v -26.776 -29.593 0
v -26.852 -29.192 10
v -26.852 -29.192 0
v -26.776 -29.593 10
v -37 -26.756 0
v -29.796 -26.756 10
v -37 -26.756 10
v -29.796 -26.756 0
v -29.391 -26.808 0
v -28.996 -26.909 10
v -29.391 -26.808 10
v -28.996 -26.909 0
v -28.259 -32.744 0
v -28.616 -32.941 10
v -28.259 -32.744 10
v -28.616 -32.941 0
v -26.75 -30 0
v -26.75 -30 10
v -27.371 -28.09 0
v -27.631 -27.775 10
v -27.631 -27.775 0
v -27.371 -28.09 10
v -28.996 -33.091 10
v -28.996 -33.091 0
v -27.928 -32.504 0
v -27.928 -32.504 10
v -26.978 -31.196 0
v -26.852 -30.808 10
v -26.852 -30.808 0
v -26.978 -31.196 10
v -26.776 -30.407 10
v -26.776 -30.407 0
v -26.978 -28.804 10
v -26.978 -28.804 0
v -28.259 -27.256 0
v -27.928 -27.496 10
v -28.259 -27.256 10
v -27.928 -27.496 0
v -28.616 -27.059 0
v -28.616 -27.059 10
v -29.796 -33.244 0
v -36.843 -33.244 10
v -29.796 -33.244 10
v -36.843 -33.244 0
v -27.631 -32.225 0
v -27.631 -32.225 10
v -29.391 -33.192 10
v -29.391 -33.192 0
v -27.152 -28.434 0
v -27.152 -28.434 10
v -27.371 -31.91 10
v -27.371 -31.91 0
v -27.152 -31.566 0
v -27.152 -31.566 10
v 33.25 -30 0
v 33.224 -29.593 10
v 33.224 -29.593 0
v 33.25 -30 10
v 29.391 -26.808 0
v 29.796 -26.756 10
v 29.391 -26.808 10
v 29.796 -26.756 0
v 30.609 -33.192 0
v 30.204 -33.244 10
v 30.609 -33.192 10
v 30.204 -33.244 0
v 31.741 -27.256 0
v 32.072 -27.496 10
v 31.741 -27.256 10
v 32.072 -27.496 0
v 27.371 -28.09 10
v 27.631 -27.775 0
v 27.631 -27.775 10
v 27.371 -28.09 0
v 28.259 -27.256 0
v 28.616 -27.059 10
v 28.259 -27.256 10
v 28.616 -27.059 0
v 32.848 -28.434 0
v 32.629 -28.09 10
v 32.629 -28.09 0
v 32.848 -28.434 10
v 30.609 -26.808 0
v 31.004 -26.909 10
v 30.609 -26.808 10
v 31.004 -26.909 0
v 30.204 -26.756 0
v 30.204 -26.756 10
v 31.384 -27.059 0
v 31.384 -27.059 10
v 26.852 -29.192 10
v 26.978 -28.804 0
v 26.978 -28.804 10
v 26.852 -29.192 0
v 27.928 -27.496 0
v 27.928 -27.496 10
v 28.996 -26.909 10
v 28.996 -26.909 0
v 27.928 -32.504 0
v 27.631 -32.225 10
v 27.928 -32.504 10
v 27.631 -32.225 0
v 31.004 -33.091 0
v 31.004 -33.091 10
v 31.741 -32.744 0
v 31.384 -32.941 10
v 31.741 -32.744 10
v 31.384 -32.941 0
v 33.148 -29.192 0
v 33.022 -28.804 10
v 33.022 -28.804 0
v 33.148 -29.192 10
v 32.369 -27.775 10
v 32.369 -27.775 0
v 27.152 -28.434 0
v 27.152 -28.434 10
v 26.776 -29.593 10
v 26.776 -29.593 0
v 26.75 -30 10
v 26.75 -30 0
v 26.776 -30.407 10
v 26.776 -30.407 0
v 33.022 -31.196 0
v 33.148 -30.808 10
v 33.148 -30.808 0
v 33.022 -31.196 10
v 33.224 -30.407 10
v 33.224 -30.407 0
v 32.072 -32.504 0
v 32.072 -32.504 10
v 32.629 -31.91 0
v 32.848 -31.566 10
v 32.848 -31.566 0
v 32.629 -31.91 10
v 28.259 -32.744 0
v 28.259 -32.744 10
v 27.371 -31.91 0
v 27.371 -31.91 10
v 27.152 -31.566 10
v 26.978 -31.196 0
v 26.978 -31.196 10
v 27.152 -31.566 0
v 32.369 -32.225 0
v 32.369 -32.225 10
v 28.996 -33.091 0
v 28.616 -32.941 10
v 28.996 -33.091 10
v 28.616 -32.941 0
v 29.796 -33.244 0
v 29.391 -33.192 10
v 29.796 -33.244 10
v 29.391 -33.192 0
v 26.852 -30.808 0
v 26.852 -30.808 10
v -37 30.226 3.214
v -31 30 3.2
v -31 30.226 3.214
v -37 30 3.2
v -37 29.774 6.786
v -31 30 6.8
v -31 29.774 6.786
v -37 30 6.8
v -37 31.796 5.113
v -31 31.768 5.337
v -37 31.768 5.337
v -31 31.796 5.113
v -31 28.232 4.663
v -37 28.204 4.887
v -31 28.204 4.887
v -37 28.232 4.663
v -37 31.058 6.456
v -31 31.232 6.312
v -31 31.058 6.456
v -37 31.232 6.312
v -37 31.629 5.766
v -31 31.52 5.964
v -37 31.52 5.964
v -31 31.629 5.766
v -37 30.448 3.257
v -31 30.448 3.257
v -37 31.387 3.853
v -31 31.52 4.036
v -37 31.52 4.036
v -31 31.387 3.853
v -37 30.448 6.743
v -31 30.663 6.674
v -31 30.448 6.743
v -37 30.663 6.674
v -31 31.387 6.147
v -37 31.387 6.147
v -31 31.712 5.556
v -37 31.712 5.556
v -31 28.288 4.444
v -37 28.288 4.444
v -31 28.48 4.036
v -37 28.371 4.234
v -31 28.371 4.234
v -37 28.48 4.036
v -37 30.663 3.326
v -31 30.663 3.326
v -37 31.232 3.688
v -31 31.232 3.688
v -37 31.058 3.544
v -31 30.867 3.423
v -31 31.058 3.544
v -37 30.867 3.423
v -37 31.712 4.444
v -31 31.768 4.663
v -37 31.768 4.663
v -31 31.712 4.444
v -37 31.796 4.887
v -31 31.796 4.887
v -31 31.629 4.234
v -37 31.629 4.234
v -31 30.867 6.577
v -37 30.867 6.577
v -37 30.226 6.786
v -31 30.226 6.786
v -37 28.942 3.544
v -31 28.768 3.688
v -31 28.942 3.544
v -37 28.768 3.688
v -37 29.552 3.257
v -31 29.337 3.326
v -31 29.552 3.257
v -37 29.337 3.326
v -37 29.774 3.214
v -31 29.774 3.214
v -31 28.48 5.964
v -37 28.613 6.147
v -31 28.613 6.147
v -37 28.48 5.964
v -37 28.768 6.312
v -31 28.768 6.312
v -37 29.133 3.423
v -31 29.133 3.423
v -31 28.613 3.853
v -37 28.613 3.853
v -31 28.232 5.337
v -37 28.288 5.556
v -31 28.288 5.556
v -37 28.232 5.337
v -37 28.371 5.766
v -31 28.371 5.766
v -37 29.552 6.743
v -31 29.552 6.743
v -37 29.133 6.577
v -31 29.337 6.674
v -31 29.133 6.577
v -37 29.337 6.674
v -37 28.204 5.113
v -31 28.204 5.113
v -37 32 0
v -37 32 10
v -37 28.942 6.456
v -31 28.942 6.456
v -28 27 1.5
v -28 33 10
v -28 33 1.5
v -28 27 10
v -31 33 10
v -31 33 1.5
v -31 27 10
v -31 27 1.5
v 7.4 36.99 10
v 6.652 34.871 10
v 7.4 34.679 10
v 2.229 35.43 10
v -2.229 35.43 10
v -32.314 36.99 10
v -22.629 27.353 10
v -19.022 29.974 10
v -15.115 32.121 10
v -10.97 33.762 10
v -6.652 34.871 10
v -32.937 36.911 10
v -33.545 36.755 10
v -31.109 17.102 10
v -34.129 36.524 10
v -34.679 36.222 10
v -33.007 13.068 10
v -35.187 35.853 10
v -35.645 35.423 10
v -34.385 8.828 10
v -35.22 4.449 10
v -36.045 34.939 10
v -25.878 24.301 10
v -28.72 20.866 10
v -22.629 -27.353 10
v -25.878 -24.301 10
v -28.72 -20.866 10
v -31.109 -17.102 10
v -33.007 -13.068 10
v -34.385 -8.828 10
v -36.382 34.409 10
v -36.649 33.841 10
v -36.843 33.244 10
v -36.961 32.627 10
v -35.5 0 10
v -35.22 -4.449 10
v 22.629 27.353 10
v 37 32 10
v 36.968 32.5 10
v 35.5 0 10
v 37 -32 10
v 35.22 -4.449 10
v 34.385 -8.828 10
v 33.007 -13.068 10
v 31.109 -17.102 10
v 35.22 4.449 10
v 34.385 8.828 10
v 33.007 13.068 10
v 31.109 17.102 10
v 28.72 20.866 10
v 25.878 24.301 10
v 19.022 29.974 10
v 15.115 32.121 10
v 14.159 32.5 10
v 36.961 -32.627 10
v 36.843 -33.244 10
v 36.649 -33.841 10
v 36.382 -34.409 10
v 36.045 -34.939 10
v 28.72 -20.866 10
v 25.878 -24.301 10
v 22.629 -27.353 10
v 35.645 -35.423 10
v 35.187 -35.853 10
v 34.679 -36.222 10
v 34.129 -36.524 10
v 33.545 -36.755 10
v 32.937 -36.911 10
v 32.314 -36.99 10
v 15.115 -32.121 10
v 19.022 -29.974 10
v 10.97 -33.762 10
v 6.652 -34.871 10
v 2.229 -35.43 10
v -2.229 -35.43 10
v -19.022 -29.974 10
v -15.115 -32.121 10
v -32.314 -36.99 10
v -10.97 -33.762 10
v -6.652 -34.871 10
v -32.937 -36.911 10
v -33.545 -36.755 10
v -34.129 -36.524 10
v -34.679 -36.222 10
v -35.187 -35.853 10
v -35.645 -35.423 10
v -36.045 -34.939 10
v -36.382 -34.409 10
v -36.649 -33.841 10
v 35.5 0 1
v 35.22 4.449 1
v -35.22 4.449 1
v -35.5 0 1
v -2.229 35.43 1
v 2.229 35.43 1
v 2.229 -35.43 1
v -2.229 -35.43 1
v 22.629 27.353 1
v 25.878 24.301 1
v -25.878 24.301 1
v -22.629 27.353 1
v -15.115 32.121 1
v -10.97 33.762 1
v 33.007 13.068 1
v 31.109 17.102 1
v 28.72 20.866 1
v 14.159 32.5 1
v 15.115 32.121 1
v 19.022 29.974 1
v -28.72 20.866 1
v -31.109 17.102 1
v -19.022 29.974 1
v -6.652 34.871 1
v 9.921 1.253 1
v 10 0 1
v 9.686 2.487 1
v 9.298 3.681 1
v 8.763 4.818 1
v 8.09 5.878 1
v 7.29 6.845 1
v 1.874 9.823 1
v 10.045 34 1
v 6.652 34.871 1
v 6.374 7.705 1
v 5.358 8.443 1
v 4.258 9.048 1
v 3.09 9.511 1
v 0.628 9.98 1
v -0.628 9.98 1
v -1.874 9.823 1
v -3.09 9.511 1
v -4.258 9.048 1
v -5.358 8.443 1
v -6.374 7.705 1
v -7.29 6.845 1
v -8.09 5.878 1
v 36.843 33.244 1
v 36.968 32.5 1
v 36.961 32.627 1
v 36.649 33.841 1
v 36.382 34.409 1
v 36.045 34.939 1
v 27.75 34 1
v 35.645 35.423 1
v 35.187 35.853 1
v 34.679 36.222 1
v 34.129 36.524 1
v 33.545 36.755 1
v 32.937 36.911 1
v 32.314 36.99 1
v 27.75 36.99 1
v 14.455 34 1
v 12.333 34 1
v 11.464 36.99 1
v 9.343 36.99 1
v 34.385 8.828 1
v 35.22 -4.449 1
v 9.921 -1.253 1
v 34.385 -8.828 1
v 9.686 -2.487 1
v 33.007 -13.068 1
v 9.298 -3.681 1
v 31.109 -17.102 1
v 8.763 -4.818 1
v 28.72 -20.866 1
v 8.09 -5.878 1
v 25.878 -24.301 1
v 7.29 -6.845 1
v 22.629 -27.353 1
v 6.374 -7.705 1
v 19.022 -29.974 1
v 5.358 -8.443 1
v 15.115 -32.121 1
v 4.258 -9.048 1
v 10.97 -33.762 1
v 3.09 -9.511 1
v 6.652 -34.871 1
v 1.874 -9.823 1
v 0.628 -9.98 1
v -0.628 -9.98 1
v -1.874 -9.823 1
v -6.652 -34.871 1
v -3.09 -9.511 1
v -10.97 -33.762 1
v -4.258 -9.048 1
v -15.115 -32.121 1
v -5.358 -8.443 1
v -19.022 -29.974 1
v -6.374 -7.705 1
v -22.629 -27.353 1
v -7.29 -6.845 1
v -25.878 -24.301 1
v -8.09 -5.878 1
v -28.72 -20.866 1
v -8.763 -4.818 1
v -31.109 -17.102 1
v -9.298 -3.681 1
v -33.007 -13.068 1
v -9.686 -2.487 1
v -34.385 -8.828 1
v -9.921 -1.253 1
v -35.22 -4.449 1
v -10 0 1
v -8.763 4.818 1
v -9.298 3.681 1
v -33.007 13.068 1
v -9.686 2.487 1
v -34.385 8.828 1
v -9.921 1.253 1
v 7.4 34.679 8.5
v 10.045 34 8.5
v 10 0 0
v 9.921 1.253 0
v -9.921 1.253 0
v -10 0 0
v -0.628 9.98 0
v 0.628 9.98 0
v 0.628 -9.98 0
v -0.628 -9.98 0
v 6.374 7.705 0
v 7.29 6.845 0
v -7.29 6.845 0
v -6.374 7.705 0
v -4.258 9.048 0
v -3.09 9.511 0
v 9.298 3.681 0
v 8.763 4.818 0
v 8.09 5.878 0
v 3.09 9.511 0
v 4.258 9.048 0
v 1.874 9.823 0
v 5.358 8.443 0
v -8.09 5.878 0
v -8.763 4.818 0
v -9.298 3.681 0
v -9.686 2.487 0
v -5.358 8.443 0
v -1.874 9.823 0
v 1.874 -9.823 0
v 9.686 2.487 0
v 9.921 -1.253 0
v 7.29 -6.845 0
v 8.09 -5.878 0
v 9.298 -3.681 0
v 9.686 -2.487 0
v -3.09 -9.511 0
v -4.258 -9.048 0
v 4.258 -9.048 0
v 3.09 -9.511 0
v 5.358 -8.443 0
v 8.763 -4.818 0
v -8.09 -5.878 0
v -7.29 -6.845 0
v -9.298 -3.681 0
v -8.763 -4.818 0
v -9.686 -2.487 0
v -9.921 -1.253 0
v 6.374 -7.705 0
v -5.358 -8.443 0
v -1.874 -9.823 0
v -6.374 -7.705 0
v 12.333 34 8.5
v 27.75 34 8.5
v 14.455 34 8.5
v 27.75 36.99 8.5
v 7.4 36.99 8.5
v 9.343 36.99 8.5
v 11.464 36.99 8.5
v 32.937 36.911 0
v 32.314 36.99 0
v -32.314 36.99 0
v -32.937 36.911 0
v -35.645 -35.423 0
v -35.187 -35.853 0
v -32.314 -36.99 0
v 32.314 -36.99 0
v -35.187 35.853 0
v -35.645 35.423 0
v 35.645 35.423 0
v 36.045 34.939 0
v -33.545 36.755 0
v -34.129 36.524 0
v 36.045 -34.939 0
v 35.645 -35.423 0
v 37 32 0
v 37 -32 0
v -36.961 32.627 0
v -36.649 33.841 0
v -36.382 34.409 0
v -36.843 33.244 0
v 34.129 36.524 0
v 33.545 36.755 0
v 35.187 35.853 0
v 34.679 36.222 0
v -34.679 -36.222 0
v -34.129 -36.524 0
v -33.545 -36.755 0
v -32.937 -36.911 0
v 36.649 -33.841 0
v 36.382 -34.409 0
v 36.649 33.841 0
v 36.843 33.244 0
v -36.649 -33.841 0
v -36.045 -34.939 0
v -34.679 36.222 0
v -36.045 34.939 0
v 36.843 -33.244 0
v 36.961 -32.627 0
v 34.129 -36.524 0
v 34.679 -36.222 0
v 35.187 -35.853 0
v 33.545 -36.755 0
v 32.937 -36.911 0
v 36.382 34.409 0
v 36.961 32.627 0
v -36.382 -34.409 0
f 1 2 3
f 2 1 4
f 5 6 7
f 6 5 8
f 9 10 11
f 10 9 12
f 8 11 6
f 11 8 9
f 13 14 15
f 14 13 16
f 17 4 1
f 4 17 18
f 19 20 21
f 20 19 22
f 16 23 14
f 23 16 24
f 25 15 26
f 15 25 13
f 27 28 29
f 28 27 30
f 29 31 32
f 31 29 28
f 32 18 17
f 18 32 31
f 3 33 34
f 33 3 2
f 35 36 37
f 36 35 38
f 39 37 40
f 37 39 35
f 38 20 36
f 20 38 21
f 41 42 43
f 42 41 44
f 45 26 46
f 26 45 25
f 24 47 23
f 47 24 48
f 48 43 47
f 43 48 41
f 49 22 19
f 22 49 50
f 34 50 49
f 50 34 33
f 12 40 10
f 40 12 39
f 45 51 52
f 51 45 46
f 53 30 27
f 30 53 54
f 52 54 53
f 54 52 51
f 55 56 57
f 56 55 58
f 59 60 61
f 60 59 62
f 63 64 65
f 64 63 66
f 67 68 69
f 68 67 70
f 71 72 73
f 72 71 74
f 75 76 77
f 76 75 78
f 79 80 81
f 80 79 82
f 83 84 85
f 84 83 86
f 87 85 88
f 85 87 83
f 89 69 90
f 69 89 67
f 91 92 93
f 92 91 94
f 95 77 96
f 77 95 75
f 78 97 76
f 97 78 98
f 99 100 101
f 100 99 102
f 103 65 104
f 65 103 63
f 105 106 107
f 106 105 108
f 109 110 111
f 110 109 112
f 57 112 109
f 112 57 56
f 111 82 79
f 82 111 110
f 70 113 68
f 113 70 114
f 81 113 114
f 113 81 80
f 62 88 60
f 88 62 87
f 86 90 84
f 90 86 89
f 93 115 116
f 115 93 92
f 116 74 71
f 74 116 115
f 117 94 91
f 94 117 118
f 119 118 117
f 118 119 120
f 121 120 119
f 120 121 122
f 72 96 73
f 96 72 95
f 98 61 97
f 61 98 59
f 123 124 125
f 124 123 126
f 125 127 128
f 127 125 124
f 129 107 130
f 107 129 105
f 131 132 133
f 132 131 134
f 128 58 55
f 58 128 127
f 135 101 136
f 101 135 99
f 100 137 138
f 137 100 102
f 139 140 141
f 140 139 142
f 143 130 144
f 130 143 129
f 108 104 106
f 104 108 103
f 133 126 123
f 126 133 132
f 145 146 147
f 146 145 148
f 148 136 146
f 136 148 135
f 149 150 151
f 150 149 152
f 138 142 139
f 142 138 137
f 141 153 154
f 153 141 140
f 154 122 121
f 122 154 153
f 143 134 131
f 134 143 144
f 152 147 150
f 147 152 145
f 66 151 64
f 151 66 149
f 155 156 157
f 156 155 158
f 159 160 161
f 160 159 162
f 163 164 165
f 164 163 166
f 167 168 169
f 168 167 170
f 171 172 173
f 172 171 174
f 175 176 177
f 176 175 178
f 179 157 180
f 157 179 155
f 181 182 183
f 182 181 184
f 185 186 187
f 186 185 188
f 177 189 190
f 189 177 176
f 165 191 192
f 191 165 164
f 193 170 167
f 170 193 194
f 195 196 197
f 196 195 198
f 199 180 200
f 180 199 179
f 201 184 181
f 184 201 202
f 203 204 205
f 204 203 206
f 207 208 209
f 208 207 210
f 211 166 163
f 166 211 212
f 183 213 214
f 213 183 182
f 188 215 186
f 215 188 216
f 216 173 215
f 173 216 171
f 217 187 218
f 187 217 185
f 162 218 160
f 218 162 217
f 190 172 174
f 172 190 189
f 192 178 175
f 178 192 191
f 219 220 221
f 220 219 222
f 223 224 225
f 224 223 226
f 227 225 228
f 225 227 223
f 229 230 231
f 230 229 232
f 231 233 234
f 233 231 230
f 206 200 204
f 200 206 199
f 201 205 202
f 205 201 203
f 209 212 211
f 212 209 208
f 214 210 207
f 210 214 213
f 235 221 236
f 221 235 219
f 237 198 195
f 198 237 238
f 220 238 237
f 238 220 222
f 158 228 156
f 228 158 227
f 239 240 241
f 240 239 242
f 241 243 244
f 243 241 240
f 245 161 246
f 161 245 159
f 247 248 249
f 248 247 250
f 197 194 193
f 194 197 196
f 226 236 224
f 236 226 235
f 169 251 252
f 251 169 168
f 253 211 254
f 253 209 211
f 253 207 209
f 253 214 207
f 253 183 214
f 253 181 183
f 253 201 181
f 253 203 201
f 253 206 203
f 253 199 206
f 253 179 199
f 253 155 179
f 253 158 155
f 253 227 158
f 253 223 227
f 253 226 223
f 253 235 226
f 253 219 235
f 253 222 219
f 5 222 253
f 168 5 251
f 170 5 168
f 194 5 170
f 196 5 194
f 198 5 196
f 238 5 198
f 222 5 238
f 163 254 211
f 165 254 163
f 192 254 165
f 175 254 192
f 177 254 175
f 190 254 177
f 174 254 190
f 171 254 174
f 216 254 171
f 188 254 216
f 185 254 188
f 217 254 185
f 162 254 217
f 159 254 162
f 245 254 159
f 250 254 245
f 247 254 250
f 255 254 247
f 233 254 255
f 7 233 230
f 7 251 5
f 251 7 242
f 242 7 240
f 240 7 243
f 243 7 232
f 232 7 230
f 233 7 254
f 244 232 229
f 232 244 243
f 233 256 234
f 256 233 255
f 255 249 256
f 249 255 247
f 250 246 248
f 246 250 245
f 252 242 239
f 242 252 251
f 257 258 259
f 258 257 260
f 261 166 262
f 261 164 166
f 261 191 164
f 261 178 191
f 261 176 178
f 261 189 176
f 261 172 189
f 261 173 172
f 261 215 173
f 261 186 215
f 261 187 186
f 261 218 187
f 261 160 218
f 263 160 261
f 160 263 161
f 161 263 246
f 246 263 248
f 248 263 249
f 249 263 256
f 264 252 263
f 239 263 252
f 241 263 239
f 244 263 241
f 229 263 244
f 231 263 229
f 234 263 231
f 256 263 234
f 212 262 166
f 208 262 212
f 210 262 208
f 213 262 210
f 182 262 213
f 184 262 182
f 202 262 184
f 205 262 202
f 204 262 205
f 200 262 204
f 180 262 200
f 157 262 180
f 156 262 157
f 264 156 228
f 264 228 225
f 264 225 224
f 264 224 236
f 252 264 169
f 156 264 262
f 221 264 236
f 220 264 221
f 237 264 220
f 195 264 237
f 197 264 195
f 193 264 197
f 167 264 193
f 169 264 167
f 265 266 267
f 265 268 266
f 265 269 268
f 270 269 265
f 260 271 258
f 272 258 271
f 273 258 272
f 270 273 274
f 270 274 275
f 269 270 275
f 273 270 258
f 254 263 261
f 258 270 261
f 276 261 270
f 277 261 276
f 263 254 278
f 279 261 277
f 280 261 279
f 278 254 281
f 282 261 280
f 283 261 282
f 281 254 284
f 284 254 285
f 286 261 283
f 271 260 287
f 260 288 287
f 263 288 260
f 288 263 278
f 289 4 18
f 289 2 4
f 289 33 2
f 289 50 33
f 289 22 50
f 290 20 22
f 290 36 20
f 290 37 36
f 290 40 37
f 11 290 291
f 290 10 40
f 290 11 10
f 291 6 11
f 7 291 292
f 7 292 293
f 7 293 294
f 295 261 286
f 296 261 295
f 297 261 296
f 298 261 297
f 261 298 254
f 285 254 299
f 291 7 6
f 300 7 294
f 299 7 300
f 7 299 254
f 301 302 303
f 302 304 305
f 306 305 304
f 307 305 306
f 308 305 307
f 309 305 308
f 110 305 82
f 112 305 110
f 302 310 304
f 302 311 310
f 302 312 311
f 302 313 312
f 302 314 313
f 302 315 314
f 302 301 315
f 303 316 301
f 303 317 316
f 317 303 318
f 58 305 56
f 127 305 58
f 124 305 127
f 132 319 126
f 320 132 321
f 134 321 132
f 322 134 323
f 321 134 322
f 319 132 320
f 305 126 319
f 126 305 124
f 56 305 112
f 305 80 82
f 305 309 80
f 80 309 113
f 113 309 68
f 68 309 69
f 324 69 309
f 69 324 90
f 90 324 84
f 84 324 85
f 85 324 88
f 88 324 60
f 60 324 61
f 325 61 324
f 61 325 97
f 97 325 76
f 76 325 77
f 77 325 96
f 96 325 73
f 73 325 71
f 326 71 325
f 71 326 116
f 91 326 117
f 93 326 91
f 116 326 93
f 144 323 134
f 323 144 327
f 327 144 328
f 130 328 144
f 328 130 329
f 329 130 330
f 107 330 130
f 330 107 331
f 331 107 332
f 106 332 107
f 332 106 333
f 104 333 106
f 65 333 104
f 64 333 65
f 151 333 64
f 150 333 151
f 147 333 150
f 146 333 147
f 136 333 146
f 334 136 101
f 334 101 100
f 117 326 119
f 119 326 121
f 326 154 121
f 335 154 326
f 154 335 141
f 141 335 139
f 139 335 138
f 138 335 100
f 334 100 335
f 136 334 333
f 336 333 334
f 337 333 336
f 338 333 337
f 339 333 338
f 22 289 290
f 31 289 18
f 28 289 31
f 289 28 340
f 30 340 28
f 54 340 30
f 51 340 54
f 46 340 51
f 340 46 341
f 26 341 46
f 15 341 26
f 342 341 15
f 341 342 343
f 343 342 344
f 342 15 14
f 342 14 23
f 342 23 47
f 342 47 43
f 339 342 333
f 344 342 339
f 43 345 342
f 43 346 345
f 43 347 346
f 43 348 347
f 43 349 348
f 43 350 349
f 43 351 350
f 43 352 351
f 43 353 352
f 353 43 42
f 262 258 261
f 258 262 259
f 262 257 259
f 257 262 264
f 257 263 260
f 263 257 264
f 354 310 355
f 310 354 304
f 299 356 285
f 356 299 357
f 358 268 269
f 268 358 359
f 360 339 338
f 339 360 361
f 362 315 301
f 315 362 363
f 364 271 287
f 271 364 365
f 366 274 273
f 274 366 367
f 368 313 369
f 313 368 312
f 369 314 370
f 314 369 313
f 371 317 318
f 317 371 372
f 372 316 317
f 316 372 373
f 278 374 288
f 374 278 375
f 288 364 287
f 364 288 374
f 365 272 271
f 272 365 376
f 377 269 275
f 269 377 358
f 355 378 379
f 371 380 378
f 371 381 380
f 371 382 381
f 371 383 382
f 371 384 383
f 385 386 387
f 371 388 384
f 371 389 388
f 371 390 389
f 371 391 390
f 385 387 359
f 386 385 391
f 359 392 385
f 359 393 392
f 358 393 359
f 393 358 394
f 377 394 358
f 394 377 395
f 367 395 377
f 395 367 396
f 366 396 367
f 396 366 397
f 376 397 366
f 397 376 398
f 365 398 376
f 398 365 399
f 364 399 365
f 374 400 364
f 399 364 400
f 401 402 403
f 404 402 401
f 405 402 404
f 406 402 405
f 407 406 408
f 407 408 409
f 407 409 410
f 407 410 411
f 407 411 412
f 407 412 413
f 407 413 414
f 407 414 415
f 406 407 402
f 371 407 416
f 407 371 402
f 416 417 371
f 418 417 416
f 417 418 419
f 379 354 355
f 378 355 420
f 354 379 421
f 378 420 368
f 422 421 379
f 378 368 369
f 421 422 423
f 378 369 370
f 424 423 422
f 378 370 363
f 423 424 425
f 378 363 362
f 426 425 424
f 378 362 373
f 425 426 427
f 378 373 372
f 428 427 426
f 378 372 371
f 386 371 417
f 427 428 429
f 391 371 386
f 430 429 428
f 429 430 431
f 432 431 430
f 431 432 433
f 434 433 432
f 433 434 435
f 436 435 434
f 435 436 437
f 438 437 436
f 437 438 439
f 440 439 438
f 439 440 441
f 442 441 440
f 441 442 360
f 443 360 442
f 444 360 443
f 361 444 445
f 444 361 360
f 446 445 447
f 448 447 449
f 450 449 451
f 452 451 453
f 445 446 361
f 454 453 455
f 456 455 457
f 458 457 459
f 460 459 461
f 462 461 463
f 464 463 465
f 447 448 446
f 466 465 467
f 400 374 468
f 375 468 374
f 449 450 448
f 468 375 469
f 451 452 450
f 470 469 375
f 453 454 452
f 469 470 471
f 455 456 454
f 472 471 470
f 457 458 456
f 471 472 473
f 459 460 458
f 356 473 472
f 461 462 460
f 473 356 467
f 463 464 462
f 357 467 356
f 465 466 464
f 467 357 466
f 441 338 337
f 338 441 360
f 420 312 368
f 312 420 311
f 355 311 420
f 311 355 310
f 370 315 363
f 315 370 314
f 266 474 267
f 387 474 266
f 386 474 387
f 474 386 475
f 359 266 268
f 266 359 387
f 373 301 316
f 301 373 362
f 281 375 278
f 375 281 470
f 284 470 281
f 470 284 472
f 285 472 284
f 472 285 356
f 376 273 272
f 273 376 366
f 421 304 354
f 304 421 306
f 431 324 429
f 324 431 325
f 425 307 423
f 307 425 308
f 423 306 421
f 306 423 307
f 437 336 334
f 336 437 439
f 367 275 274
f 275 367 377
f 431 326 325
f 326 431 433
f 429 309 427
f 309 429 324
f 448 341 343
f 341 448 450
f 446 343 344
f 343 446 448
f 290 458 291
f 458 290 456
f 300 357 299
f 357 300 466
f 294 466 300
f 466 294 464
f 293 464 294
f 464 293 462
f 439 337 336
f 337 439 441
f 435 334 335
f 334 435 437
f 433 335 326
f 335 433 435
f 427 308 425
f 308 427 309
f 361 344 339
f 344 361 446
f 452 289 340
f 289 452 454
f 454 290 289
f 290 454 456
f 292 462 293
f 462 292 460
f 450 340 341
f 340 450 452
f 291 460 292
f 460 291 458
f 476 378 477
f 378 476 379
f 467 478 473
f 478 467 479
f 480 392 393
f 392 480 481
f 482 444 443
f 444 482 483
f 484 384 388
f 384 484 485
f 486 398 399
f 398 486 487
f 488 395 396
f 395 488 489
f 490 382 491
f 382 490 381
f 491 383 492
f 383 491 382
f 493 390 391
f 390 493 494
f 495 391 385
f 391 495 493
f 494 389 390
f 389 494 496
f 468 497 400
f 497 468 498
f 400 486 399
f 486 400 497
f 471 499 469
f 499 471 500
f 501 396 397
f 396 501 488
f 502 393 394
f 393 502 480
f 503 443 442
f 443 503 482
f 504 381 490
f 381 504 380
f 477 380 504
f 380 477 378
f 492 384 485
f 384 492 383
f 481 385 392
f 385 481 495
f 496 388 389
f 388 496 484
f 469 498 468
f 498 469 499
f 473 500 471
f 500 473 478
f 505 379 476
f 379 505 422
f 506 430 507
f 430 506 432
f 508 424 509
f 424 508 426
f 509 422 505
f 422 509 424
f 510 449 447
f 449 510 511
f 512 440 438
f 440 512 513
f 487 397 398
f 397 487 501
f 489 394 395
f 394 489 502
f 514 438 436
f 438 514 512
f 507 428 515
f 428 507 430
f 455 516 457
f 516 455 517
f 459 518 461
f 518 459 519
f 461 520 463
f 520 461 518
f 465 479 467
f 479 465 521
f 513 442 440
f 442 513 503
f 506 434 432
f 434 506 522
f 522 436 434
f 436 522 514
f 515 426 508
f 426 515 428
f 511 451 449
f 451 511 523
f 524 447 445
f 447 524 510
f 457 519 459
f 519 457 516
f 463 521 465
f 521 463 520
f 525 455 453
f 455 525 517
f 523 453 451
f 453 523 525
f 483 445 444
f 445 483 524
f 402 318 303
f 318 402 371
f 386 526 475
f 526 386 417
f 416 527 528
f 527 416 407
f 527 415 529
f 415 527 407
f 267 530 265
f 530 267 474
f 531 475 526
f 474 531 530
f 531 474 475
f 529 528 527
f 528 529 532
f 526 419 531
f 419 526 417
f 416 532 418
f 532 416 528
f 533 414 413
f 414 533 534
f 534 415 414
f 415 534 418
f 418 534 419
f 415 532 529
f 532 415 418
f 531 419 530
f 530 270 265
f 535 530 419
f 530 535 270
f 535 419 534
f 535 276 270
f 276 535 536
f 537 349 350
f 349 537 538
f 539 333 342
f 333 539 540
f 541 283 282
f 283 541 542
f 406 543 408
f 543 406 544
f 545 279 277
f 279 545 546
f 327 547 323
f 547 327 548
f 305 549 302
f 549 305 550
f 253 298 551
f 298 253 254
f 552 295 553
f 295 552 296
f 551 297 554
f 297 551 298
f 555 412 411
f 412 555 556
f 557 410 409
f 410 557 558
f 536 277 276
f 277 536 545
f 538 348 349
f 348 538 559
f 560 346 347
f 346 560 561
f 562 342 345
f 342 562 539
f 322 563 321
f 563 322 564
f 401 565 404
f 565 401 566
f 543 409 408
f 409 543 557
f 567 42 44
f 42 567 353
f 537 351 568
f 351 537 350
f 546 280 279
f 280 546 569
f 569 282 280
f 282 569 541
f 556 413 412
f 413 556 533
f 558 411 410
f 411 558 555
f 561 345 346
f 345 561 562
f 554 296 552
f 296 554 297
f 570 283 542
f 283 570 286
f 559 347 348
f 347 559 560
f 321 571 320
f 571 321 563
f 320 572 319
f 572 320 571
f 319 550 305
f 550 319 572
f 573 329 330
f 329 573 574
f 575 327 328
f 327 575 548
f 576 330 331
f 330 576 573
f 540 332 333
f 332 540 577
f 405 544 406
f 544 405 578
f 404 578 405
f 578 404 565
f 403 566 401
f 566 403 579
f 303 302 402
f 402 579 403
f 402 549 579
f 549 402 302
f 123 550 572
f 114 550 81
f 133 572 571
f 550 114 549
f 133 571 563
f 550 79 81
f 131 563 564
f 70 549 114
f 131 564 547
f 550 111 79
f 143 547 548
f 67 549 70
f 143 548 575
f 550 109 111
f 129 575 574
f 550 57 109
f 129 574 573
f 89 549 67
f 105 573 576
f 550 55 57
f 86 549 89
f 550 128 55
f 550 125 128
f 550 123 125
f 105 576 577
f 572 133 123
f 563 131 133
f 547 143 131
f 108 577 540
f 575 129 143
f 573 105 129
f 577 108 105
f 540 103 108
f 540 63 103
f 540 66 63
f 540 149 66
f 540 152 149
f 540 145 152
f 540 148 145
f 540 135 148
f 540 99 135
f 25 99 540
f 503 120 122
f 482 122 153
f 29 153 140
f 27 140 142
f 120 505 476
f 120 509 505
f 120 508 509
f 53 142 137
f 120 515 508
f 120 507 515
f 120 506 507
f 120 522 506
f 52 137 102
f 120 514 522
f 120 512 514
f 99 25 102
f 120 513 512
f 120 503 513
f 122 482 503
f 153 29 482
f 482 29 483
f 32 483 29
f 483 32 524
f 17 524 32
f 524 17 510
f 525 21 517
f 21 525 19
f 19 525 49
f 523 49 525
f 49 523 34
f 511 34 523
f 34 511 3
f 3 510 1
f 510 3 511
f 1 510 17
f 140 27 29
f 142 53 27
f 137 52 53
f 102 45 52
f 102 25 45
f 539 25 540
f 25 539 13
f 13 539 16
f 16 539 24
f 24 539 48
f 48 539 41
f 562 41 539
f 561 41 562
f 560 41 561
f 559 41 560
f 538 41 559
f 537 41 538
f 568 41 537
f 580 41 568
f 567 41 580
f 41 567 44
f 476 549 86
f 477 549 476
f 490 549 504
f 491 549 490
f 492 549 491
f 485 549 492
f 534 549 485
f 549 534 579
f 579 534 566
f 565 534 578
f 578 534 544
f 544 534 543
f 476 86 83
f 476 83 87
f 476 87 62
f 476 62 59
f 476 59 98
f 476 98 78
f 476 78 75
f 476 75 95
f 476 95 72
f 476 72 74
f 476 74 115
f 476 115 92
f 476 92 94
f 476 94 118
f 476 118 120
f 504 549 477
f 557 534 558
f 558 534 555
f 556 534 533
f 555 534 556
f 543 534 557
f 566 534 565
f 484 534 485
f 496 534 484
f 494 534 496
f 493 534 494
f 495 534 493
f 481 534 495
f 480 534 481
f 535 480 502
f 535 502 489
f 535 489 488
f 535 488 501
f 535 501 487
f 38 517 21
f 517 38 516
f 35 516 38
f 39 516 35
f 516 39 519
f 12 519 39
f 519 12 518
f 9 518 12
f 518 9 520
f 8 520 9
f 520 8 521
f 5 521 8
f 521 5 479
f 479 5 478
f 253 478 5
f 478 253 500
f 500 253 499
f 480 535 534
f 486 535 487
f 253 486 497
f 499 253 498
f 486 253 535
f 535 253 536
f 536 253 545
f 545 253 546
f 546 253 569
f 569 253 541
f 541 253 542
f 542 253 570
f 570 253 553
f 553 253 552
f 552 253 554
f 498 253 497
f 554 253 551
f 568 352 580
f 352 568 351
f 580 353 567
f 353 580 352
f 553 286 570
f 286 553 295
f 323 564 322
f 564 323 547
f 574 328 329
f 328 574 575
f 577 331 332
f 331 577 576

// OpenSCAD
$fn = 50;


difference() {
	union() {
		translate(v = [0, 0, 0]) {
			rotate(a = [0, 0, 0]) {
				hull() {
					translate(v = [-32.0000000000, 32.0000000000, 0]) {
						rotate(a = [0, 0, 0]) {
							translate(v = [0, 0, 0]) {
								rotate(a = [0, 0, 0]) {
									cylinder(h = 10, r = 5);
								}
							}
						}
					}
					translate(v = [32.0000000000, 32.0000000000, 0]) {
						rotate(a = [0, 0, 0]) {
							translate(v = [0, 0, 0]) {
								rotate(a = [0, 0, 0]) {
									cylinder(h = 10, r = 5);
								}
							}
						}
					}
					translate(v = [-32.0000000000, -32.0000000000, 0]) {
						rotate(a = [0, 0, 0]) {
							translate(v = [0, 0, 0]) {
								rotate(a = [0, 0, 0]) {
									cylinder(h = 10, r = 5);
								}
							}
						}
					}
					translate(v = [32.0000000000, -32.0000000000, 0]) {
						rotate(a = [0, 0, 0]) {
							translate(v = [0, 0, 0]) {
								rotate(a = [0, 0, 0]) {
									cylinder(h = 10, r = 5);
								}
							}
						}
					}
				}
			}
		}
	}
	union() {
		translate(v = [-37.5000000000, -30.0000000000, -125]) {
			rotate(a = [0, 0, 0]) {
				hull() {
					translate(v = [7.5000000000, 0, 0]) {
						rotate(a = [0, 0, 0]) {
							translate(v = [0, 0, 0]) {
								rotate(a = [0, 0, 0]) {
									cylinder(h = 250, r = 3.2500000000);
								}
							}
						}
					}
					translate(v = [-7.5000000000, 0, 0]) {
						rotate(a = [0, 0, 0]) {
							translate(v = [0, 0, 0]) {
								rotate(a = [0, 0, 0]) {
									cylinder(h = 250, r = 3.2500000000);
								}
							}
						}
					}
				}
			}
		}
		translate(v = [30.0000000000, -30.0000000000, -125.0000000000]) {
			rotate(a = [0, 0, 0]) {
				cylinder(h = 250, r = 3.2500000000);
			}
		}
		translate(v = [-37.0000000000, 30.0000000000, 5.0000000000]) {
			rotate(a = [0, 90, 0]) {
				cylinder(h = 9, r = 1.8000000000);
			}
		}
		translate(v = [-31.0000000000, 27.0000000000, 1.5000000000]) {
			rotate(a = [0, 0, 0]) {
				cube(size = [3, 6, 8.5000000000]);
			}
		}
		translate(v = [0, 0, 1.0000000000]) {
			rotate(a = [0, 0, 0]) {
				cylinder(h = 12, r = 35.5000000000);
			}
		}
		translate(v = [0, 0, -5.0000000000]) {
			rotate(a = [0, 0, 0]) {
				cylinder(h = 10, r = 10.0000000000);
			}
		}
		translate(v = [0.0000000000, 32.5000000000, 1]) {
			rotate(a = [0, 0, 0]) {
				cube(size = [37.0000000000, 1.5000000000, 12]);
			}
		}
		translate(v = [27.7500000000, 32.5000000000, 1]) {
			rotate(a = [0, 0, 0]) {
				cube(size = [9.2500000000, 4.5000000000, 12]);
			}
		}
		translate(v = [7.4000000000, 32.5000000000, 8.5000000000]) {
			rotate(a = [0, 0, 0]) {
				cube(size = [29.6000000000, 4.5000000000, 1.5000000000]);
			}
		}
		translate(v = [8.5833333333, 37.7500000000, 1]) {
			rotate(a = [0, 0, -45]) {
				cube(size = [7.5000000000, 1.5000000000, 12]);
			}
		}
	}
}
